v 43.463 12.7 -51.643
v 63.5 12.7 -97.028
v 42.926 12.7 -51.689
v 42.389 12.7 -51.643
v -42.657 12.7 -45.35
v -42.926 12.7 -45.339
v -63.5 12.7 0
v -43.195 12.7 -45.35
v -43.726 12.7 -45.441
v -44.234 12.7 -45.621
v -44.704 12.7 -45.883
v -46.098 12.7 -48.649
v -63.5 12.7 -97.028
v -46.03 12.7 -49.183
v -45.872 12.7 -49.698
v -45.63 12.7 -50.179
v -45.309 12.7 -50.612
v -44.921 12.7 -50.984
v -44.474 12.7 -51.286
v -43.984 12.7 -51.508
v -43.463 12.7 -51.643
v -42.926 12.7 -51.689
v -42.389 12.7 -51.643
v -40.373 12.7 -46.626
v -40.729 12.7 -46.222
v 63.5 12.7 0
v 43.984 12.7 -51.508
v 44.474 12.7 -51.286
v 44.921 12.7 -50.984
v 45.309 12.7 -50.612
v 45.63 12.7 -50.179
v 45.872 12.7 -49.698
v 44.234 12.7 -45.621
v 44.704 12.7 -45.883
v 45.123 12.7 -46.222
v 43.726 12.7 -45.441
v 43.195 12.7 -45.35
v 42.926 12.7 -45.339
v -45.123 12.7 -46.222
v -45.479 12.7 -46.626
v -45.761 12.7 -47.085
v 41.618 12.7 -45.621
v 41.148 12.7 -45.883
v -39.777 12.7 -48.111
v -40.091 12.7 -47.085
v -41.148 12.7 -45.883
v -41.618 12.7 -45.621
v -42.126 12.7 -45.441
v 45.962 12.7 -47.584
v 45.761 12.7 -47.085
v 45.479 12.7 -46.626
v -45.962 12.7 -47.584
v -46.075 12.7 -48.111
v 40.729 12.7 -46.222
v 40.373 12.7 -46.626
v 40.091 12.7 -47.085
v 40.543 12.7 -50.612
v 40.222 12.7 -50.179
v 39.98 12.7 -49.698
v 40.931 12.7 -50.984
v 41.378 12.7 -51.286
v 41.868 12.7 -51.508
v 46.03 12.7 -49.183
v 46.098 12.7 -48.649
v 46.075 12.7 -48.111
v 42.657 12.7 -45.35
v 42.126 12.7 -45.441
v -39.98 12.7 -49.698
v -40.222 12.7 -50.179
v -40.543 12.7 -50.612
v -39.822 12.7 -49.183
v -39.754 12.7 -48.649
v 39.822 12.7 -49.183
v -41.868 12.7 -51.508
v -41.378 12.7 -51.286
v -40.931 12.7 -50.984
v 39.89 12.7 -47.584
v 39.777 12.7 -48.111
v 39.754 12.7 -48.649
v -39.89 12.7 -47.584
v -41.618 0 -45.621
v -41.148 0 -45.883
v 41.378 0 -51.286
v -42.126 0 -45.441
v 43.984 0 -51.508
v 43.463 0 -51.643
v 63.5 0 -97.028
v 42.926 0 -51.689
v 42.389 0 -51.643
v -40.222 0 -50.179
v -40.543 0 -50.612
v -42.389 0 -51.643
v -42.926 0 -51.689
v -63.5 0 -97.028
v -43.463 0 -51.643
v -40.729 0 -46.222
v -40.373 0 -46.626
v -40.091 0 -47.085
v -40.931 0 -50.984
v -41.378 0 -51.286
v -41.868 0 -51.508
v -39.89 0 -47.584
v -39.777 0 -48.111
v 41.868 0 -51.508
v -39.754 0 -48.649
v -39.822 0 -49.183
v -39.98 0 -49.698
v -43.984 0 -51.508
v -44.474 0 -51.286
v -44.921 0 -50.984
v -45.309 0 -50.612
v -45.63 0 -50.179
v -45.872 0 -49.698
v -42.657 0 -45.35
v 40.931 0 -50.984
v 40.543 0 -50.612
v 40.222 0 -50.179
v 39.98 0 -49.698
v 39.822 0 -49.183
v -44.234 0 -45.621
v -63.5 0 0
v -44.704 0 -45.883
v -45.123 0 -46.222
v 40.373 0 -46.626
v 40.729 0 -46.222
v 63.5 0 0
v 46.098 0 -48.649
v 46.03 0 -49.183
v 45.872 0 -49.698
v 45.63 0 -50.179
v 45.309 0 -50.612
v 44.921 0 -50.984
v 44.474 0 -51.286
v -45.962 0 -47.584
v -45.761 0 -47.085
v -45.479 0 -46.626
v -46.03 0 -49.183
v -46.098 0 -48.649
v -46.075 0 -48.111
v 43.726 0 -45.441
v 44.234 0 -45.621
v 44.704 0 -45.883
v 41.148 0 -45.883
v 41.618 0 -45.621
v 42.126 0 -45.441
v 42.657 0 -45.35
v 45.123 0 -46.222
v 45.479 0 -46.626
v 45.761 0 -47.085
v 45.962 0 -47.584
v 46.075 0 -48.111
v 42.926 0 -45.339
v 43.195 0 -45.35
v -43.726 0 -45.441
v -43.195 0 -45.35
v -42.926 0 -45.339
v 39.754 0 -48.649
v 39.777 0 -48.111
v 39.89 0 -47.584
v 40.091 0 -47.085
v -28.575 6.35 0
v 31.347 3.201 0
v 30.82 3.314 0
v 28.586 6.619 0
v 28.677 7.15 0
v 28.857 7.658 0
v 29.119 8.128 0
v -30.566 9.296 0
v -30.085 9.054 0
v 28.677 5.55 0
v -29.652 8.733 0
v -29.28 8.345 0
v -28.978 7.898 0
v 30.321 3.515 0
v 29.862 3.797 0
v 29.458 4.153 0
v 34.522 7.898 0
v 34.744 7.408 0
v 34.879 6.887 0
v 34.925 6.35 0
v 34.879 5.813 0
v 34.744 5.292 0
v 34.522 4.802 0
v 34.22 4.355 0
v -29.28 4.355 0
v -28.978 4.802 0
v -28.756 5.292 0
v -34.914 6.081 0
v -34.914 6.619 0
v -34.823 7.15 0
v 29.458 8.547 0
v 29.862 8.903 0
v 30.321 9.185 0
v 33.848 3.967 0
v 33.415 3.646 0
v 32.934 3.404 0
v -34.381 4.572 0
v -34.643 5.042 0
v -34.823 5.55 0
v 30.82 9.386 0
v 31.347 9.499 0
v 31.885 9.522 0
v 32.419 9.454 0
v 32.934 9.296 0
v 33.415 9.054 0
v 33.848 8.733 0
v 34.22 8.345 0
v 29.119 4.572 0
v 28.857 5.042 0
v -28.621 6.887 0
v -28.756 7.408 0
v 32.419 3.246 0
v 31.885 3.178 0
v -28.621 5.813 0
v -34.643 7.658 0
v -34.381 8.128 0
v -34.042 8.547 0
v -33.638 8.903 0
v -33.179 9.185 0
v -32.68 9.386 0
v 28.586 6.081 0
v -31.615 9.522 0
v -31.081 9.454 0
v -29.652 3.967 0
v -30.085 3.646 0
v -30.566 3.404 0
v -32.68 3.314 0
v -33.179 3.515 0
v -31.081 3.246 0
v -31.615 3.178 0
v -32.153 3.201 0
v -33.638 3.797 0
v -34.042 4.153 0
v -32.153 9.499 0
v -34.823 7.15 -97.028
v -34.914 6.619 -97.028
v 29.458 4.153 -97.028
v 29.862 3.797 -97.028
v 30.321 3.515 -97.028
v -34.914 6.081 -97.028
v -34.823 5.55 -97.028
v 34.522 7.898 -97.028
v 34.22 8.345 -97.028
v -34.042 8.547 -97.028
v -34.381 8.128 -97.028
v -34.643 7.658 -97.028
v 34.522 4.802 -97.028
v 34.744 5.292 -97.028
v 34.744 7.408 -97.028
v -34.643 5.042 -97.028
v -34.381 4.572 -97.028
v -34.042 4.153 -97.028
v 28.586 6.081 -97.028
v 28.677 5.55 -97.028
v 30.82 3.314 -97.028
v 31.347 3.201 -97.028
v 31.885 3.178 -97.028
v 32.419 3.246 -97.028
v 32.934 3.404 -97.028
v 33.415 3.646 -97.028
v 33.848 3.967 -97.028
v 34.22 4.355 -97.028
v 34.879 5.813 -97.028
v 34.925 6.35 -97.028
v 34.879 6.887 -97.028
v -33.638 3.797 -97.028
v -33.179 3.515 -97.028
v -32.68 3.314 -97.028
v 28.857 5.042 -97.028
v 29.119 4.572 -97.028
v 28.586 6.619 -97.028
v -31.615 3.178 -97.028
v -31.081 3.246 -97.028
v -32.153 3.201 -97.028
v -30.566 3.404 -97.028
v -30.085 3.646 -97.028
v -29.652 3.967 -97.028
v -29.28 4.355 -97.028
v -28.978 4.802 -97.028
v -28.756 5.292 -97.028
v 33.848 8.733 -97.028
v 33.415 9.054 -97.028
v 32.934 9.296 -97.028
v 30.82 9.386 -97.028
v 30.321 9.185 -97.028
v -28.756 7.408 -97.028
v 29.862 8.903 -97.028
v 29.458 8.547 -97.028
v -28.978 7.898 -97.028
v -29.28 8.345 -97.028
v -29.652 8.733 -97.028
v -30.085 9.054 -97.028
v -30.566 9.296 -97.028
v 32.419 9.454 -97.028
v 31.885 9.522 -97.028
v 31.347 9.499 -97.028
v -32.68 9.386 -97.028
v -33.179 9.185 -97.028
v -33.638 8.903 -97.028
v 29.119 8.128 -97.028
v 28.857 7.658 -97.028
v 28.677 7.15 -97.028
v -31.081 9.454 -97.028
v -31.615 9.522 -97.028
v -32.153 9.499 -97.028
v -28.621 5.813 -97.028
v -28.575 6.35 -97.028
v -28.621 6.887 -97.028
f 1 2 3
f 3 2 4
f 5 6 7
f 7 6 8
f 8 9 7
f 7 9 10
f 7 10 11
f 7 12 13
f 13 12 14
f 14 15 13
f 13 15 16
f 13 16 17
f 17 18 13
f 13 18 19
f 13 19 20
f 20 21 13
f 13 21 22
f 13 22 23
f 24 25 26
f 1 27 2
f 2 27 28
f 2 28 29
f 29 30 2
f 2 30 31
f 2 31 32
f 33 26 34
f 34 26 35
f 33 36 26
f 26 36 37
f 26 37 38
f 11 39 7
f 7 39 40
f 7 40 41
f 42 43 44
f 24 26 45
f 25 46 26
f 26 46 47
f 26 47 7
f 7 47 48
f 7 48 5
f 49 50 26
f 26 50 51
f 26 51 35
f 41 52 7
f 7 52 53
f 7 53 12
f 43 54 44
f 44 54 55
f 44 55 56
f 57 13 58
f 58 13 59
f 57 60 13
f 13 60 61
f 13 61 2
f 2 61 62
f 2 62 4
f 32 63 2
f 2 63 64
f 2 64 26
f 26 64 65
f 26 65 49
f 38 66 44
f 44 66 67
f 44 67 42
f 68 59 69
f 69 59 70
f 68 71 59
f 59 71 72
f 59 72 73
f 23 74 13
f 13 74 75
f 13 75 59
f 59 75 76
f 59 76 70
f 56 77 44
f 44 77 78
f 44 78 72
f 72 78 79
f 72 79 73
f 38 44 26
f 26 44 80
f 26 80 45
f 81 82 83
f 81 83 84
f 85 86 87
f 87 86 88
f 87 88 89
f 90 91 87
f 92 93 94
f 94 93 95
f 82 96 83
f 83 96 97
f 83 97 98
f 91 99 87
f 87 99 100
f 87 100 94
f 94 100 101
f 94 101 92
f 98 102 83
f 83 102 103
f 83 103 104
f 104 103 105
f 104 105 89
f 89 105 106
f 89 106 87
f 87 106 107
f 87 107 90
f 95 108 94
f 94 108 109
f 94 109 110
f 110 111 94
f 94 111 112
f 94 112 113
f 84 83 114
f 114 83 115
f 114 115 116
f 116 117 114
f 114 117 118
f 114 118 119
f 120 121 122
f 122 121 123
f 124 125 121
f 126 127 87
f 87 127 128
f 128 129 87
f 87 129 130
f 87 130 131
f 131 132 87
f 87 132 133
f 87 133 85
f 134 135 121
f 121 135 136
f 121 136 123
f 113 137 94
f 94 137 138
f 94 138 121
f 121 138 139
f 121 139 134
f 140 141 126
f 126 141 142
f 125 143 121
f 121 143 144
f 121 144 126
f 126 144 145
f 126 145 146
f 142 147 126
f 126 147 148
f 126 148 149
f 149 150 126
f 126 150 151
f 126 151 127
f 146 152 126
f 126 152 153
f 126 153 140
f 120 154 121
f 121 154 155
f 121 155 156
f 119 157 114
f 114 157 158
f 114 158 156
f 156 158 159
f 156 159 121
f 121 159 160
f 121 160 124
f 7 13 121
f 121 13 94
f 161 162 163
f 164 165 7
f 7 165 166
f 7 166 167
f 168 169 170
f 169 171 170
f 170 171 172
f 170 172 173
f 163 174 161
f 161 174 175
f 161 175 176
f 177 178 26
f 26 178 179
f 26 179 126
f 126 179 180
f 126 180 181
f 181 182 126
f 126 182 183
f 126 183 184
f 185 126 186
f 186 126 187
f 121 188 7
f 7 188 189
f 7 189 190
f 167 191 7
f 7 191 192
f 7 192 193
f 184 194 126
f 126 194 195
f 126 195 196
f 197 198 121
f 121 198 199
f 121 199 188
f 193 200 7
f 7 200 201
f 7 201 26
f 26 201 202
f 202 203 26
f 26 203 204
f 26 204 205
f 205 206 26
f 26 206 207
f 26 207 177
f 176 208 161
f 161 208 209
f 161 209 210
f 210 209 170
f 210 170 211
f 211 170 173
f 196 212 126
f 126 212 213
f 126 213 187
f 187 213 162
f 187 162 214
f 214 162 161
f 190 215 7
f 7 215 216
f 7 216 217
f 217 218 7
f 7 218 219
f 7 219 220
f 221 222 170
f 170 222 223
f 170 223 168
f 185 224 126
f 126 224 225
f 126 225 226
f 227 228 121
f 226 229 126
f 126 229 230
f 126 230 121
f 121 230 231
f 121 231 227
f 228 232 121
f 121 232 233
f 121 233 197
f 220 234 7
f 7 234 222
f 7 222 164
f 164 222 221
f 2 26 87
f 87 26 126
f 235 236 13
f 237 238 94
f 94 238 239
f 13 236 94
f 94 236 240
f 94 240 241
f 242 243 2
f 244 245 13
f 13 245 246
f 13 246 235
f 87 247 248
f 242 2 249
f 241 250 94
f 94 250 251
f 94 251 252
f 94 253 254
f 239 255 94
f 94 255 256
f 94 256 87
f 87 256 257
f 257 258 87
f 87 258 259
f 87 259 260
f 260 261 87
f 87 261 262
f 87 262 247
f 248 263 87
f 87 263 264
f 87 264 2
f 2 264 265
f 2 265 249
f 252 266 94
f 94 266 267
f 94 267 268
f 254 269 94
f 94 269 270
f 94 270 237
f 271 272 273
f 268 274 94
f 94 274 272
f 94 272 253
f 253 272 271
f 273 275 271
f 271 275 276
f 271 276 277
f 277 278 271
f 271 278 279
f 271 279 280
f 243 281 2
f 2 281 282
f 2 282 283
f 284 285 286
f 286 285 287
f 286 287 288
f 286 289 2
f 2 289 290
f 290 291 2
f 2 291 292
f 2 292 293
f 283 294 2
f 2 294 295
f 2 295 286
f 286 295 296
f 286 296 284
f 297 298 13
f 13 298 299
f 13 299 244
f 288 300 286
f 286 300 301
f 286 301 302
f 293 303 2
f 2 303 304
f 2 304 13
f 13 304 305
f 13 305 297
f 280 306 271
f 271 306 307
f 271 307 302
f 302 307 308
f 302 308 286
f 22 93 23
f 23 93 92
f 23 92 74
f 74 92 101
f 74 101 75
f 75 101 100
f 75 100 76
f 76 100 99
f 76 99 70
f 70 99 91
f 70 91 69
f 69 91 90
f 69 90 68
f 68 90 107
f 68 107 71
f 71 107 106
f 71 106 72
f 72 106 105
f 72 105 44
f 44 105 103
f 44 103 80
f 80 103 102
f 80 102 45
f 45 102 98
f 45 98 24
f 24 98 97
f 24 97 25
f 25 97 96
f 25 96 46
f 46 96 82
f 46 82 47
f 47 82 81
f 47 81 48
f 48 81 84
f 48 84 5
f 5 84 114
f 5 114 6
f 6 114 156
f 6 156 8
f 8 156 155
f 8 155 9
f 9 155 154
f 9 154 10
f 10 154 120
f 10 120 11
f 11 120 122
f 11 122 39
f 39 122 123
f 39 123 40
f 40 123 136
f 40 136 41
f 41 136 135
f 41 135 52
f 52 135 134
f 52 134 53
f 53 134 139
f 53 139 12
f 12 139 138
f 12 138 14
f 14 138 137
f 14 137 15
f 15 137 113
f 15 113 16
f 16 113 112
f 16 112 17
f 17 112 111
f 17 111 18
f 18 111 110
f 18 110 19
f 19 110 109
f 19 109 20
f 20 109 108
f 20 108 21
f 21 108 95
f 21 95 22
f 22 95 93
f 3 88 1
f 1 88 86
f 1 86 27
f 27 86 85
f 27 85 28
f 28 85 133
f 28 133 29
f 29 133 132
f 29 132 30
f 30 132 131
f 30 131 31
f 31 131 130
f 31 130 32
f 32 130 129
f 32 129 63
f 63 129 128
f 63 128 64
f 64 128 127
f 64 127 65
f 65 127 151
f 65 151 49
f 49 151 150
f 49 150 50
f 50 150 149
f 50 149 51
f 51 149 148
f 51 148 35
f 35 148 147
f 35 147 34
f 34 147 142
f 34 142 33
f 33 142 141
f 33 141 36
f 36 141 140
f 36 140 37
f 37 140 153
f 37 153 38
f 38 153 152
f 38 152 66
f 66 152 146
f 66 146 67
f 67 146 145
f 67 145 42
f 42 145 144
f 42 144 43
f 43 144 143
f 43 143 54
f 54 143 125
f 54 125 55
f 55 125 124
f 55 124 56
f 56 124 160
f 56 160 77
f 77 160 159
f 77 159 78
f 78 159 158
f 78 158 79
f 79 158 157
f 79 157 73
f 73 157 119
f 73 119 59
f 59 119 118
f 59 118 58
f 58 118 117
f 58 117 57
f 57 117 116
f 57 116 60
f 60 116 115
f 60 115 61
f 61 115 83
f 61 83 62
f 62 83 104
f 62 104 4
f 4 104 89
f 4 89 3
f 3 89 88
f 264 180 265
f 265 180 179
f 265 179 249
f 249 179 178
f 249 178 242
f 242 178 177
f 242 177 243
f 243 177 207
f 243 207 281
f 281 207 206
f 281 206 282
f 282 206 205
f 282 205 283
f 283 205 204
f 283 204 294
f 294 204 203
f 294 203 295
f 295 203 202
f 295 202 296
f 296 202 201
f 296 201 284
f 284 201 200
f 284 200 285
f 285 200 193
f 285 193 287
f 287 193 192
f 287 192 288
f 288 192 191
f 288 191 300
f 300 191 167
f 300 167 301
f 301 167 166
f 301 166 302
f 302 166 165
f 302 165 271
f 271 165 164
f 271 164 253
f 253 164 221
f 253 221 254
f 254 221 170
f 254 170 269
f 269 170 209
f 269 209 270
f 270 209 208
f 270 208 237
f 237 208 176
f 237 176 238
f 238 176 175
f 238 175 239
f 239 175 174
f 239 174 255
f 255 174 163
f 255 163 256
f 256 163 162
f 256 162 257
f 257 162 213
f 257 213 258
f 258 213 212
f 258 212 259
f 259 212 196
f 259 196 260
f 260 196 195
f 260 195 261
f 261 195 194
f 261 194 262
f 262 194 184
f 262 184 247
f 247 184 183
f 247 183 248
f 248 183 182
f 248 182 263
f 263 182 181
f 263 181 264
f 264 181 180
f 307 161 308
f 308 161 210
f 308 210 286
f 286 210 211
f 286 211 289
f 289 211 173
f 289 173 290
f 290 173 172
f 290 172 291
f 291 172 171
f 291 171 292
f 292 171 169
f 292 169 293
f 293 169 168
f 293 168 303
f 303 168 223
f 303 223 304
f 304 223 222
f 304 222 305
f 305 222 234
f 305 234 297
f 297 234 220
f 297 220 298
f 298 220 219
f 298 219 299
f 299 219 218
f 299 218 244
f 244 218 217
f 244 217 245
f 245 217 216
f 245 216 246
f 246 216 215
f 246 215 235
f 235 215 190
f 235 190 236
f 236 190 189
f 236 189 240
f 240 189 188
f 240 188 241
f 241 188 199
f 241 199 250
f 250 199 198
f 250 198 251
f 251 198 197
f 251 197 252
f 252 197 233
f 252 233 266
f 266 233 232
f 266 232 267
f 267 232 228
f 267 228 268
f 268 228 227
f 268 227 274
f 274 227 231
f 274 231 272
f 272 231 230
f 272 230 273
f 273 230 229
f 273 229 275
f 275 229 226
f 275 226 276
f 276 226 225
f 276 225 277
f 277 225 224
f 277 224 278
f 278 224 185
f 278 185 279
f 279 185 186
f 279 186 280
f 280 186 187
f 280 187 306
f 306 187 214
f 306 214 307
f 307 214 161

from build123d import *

# Parameters (mm, degrees)
SKETCH1_R           = 3.175
BOSS_EXTRUDE1_DEPTH = 12.7
SKETCH3_R           = 3.175
CUT_EXTRUDE1_DEPTH  = 117.653215918


with BuildPart() as part:
    # Sketch1 → Boss-Extrude1 (new body)
    with BuildSketch(Plane(origin=(0, 0, 0), x_dir=(1, 0, 0), z_dir=(0, 1, 0))):
        Polygon((0, 97.028), (63.5, 97.028), (63.5, 0), (-63.5, 0), (-63.5, 97.028), align=None)
        with Locations(Location((-42.926, 48.514, 0), (0, 0, 270))):
            Circle(SKETCH1_R, mode=Mode.SUBTRACT)
        with Locations(Location((42.926, 48.514, 0), (0, 0, 270))):
            Circle(SKETCH1_R, mode=Mode.SUBTRACT)
    extrude(amount=BOSS_EXTRUDE1_DEPTH)

    # Sketch3 → Cut-Extrude1 (cut, through all)
    with BuildSketch(Plane.XY):
        with Locations((-31.75, 6.35)):
            Circle(SKETCH3_R)
        with Locations((31.75, 6.35)):
            Circle(SKETCH3_R)
    extrude(amount=-CUT_EXTRUDE1_DEPTH, mode=Mode.SUBTRACT)


solid = part.part
